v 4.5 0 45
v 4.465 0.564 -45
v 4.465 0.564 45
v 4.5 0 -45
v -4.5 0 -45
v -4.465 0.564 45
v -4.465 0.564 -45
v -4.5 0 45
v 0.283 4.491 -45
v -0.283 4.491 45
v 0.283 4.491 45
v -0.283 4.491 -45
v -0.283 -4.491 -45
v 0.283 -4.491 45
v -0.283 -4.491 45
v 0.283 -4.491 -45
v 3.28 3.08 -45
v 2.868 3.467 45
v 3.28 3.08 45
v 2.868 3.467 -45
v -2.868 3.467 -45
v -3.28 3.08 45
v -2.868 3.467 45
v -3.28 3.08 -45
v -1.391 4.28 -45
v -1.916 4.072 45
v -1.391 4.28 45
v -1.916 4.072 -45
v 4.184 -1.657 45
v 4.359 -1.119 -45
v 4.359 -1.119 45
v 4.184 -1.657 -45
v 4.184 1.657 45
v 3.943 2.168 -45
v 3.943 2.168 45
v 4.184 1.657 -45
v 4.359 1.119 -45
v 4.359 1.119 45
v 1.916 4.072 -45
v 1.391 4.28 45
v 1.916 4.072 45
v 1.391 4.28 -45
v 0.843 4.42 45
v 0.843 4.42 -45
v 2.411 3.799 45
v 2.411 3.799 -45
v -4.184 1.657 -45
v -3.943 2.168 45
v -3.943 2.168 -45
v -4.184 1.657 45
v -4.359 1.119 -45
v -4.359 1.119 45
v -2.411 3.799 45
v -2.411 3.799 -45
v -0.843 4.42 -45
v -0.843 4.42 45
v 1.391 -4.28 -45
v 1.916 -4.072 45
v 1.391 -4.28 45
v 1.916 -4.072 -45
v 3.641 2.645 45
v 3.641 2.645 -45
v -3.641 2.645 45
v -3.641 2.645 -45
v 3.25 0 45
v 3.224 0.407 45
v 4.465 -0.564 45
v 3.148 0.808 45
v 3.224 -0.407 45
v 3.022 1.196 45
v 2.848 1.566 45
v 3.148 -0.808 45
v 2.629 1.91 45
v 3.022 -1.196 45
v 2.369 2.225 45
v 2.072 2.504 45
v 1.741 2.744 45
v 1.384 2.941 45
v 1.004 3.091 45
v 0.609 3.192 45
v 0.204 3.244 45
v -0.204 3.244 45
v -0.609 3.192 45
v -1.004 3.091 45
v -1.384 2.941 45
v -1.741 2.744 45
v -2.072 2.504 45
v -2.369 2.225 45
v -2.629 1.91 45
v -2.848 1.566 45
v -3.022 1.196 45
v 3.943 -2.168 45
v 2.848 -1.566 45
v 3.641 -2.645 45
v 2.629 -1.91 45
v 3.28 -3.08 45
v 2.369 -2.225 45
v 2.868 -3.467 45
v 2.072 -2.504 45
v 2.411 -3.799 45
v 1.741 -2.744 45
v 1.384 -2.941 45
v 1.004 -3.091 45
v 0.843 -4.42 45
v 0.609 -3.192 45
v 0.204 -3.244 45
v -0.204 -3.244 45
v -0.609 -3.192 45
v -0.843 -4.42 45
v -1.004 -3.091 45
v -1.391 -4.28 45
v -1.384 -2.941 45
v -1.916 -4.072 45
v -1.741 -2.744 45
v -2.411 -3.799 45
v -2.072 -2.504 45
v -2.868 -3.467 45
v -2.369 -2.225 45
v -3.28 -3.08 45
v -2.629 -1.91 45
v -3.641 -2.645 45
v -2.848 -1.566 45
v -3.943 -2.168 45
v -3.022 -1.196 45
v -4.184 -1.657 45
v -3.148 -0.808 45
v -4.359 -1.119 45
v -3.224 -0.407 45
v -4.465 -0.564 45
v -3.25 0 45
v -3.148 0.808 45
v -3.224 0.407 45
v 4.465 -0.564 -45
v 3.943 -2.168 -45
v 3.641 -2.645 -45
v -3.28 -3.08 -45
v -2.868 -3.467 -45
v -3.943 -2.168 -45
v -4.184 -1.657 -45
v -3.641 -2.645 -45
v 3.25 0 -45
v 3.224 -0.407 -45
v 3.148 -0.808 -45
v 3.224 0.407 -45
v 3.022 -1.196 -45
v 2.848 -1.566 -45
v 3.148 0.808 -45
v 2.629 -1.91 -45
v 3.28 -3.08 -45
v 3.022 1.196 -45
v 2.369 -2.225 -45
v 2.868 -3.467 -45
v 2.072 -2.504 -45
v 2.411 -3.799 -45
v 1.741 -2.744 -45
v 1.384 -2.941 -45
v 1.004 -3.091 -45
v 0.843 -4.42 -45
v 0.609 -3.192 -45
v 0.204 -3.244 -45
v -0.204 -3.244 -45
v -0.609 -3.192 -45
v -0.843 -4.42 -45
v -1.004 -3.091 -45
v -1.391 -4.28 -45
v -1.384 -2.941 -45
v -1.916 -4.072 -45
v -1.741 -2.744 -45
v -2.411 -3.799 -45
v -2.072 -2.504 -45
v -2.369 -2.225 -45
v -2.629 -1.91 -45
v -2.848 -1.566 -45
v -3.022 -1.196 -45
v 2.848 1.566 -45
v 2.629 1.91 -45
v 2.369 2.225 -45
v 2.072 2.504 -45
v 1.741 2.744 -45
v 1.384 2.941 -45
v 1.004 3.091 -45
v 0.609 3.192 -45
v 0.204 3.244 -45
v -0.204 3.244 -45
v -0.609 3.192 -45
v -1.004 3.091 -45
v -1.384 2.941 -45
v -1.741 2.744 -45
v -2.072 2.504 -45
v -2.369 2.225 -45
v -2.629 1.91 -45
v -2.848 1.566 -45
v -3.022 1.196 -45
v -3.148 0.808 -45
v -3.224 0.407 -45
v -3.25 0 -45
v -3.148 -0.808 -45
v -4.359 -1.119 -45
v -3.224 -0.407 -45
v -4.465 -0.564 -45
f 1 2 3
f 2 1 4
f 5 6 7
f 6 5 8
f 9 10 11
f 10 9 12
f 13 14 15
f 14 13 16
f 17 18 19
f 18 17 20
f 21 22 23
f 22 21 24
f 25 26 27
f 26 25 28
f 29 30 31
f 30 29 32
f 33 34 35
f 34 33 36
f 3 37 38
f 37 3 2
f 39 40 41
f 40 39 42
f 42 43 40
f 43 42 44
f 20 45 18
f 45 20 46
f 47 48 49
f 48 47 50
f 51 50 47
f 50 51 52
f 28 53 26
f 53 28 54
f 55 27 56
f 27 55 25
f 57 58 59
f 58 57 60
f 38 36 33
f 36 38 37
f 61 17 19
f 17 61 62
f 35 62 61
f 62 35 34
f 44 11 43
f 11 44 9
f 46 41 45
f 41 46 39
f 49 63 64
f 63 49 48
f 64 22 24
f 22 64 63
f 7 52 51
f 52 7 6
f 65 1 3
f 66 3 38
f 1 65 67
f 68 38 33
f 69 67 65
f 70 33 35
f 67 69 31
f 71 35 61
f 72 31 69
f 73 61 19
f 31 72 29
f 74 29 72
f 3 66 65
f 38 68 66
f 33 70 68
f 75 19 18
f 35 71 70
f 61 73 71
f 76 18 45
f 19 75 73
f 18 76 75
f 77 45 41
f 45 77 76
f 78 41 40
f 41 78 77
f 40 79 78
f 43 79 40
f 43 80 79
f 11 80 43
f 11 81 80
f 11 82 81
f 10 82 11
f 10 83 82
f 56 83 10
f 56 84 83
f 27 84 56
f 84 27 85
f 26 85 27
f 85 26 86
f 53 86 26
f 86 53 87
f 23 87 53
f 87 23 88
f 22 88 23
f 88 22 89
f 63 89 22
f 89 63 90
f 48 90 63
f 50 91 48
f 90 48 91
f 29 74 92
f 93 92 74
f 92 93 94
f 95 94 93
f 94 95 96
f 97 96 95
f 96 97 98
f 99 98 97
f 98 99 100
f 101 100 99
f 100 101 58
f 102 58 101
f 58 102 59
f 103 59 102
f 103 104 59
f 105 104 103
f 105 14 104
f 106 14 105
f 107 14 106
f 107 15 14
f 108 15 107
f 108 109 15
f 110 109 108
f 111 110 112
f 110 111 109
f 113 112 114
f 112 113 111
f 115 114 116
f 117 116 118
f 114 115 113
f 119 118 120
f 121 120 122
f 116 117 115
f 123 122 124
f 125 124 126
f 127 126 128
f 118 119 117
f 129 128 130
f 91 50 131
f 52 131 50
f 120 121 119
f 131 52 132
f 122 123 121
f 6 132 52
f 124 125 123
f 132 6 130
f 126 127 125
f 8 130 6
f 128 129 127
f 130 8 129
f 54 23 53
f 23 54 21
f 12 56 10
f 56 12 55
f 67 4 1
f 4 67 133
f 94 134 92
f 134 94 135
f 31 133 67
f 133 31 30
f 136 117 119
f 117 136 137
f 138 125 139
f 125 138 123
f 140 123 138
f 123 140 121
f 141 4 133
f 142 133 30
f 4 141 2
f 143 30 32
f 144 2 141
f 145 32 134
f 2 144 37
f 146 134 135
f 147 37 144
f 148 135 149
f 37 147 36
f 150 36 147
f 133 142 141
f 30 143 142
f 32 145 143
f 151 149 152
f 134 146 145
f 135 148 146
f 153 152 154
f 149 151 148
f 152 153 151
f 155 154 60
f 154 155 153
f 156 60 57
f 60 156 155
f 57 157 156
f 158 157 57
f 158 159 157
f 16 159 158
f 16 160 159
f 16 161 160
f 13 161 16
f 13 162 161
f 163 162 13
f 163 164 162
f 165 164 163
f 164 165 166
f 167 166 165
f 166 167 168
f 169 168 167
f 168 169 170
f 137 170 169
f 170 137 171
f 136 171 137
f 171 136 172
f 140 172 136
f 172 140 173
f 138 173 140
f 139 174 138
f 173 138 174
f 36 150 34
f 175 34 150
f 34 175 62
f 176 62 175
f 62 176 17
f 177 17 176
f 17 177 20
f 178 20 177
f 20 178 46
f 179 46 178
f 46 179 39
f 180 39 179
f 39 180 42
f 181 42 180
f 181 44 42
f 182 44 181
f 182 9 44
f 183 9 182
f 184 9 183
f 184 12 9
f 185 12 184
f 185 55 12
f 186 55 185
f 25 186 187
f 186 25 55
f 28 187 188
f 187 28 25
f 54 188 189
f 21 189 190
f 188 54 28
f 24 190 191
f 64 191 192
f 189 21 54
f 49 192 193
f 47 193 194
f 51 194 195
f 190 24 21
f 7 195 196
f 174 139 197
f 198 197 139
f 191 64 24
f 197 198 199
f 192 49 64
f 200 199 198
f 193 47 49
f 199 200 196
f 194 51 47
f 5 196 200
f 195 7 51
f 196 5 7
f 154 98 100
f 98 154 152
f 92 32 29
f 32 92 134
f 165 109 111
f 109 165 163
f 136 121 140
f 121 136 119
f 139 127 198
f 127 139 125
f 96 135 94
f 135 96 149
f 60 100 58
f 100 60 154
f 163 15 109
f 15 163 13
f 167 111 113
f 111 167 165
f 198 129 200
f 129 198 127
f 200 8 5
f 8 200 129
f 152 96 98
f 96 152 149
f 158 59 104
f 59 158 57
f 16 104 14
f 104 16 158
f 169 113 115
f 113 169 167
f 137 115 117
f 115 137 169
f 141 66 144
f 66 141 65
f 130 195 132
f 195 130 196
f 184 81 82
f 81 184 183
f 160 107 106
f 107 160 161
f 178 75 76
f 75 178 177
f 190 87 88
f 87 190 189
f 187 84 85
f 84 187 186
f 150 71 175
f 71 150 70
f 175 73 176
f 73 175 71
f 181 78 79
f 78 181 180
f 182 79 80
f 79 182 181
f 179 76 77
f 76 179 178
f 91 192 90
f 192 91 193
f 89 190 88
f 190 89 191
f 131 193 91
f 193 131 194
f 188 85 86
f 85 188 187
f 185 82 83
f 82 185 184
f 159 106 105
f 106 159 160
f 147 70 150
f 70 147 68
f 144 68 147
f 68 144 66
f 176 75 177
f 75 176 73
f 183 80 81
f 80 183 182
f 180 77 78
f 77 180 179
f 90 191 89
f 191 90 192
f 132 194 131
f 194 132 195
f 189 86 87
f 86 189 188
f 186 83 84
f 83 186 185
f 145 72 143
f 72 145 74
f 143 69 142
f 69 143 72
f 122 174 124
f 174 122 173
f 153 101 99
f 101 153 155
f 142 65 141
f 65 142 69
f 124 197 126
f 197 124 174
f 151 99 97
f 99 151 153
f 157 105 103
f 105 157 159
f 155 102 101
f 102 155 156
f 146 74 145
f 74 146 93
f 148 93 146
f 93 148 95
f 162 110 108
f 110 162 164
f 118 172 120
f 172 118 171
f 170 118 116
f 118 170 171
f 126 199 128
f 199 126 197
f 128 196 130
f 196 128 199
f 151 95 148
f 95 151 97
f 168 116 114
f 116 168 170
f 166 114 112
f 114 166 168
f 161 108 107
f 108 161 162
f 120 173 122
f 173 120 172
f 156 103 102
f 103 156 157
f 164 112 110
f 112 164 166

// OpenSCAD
$fn = 50;


difference() {
	union() {
		translate(v = [0, 0, -45.0000000000]) {
			cylinder(h = 90, r = 4.5000000000);
		}
	}
	union() {
		translate(v = [0, 0, -100.0000000000]) {
			cylinder(h = 200, r = 3.2500000000);
		}
	}
}
